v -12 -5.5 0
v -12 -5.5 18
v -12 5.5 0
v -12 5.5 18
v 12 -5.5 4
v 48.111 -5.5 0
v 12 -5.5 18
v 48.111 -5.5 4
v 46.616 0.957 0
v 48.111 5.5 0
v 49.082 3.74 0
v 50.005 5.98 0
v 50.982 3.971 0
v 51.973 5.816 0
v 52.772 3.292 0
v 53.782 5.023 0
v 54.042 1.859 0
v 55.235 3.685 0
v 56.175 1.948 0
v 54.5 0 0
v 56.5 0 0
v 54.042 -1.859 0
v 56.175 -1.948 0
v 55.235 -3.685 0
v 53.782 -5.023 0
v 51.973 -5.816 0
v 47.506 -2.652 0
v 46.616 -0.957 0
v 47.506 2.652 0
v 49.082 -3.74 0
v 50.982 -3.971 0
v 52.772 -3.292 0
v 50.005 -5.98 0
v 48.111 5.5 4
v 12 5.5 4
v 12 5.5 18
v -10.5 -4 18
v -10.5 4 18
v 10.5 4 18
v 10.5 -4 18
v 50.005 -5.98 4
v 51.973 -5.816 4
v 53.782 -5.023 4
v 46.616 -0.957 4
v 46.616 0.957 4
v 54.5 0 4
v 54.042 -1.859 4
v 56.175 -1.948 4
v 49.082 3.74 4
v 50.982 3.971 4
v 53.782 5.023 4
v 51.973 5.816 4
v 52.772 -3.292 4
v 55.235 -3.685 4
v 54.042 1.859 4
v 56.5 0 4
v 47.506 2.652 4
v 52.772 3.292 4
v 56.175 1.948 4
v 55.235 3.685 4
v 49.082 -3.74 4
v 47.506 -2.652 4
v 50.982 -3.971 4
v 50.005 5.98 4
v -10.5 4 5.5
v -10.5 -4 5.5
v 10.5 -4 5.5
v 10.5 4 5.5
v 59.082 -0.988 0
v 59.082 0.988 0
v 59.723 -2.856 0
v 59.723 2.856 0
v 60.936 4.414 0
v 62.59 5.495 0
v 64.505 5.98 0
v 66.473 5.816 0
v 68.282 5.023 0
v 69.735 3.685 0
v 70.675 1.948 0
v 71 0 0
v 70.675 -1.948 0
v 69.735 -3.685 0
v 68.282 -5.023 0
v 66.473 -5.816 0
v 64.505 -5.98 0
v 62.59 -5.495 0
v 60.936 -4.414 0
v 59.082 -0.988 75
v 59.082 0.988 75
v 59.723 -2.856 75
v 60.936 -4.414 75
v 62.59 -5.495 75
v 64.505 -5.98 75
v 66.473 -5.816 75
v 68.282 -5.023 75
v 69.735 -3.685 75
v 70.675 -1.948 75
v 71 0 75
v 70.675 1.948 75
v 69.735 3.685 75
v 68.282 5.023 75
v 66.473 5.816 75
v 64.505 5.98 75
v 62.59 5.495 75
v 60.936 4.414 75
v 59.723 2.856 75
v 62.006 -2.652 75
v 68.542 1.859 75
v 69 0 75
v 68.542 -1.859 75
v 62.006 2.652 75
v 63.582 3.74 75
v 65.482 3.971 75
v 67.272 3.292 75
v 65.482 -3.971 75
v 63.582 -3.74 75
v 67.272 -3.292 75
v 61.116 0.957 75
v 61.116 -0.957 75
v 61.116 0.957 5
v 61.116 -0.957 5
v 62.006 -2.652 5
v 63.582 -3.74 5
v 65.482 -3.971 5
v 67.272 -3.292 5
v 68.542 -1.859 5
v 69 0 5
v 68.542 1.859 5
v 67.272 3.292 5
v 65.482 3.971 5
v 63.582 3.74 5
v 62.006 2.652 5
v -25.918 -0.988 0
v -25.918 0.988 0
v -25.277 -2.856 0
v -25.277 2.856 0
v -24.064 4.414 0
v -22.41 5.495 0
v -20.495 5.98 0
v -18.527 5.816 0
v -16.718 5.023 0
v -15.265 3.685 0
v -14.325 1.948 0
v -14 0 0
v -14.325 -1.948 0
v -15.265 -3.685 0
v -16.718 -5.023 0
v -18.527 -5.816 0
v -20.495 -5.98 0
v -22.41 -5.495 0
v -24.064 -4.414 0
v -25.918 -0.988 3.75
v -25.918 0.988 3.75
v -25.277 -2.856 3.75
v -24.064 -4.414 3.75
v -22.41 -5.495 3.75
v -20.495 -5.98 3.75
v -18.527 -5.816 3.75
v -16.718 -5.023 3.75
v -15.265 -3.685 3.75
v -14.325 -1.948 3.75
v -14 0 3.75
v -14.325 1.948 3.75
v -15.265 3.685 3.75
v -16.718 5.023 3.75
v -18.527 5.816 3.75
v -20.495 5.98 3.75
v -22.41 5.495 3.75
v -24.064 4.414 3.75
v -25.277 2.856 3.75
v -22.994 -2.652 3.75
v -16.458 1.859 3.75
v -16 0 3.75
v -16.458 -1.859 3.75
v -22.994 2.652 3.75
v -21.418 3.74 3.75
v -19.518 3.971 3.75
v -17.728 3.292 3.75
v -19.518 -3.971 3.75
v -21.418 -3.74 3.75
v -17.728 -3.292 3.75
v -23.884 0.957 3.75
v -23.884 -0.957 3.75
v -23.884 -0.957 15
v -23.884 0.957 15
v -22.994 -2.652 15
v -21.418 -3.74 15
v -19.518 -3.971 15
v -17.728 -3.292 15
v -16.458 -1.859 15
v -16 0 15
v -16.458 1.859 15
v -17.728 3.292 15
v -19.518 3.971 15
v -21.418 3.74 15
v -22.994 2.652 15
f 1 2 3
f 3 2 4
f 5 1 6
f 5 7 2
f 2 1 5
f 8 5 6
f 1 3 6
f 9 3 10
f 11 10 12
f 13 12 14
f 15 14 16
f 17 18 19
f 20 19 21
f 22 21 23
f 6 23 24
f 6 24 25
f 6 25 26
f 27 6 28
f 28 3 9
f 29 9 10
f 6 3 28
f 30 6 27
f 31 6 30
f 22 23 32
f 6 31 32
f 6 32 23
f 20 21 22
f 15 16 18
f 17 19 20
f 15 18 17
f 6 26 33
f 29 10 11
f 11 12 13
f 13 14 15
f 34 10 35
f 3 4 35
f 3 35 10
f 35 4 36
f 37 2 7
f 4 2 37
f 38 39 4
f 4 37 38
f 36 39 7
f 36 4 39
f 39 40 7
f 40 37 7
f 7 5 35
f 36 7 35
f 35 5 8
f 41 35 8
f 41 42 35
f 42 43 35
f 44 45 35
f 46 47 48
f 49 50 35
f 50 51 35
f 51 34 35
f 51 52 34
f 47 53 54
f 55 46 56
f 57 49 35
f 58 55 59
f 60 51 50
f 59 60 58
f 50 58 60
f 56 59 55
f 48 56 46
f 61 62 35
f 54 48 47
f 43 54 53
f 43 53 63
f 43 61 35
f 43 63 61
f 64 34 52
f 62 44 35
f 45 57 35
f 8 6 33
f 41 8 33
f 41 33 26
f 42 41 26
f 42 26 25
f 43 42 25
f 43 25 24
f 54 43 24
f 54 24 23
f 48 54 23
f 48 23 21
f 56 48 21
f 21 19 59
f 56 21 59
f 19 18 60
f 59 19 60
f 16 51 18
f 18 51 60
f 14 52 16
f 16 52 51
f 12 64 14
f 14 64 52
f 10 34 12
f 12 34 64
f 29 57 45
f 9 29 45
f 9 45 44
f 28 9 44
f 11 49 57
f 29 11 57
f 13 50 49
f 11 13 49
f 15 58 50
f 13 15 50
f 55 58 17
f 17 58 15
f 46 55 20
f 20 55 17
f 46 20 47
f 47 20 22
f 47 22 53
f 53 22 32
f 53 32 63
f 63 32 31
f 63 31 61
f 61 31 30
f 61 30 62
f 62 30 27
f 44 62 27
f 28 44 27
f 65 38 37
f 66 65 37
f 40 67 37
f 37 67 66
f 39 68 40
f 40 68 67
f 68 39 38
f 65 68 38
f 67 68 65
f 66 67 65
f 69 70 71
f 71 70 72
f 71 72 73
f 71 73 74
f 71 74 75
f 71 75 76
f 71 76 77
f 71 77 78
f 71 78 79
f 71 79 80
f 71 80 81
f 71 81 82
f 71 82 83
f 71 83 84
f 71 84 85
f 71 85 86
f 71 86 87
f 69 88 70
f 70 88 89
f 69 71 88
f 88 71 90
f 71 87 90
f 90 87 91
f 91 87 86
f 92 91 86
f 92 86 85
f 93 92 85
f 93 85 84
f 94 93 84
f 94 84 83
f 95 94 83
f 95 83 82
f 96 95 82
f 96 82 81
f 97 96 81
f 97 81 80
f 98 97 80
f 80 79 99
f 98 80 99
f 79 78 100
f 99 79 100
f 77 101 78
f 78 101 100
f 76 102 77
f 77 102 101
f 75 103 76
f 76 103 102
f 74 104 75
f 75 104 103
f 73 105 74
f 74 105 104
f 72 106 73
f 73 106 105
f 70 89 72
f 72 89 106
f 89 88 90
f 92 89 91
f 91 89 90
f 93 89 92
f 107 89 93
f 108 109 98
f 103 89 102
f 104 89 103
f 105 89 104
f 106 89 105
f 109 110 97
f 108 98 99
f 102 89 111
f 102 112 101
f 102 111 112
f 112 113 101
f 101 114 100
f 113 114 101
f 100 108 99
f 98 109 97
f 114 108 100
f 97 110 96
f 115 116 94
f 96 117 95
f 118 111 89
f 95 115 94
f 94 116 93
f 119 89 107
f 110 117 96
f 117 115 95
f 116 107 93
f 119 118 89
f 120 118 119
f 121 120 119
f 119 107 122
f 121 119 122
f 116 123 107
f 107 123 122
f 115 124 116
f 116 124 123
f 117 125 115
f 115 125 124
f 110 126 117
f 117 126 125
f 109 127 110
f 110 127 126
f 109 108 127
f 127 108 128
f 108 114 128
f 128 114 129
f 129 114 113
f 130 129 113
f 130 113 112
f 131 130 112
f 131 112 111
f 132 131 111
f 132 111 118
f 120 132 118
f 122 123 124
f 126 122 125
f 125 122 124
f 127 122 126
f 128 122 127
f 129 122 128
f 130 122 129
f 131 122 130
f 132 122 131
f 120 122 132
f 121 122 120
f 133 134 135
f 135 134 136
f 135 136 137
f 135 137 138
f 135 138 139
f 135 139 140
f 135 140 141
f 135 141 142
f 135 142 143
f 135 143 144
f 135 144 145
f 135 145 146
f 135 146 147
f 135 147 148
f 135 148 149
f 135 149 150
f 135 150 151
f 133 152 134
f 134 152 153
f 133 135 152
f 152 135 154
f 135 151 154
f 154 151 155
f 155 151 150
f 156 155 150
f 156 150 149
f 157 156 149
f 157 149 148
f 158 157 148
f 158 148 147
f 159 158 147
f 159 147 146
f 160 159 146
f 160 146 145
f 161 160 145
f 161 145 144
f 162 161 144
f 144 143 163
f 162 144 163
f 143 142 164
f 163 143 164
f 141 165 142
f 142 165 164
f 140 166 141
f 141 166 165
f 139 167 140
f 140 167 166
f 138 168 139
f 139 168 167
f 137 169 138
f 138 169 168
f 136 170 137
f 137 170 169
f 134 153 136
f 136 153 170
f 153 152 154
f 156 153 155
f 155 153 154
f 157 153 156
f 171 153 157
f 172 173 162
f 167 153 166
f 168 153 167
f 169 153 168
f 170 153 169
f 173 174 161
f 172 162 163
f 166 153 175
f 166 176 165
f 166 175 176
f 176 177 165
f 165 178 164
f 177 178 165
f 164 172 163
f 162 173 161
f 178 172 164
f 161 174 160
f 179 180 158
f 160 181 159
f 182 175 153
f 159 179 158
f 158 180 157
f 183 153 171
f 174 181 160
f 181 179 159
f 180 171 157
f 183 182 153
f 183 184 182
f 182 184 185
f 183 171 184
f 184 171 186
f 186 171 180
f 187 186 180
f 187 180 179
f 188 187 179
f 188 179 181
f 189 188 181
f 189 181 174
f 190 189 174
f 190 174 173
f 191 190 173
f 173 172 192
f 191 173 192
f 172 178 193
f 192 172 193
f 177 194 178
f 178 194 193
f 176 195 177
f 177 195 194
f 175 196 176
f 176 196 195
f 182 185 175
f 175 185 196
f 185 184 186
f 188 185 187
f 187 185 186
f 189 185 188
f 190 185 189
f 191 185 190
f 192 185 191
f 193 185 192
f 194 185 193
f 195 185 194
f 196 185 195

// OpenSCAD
/* For best printing results, export these to .stl files one at a time. */
print_pin = 1;
print_handle = 1;
print_crank = 1;

winder_width=21;
winder_height=8;
winder_depth=15;

handle_radius=4;
handle_radius2=6;
handle_length=75;
crank_length=(150 / 3);
crank_height=4;
crank_width=(winder_height + 3);

module winder_head()
{
	difference() {
		cube(size = [winder_width + 3, winder_height + 3, 
			winder_depth + 3], center=true);
		translate(v = [0, 0, 4])  {
			cube(size = [winder_width, winder_height, 
				winder_depth], center=true);
		}
	}
}

module winder_crank(x, y, z)
{
	translate(v = [x, y, z]) {
		difference() {
			union() {
				cube(size = [ crank_length,
					crank_width, crank_height ],
					center = true);
				translate(v = [20 + crank_width / 2, 0, -crank_height / 2])
					cylinder(h = crank_height, r1 = handle_radius2,
						r2 = handle_radius2, center = false);
			}
			translate(v = [20 + crank_width / 2, 0, -10])
				cylinder(h = 35, r1 = handle_radius,
					r2 = handle_radius, center = false);
		}
	}
}

module pin(x, y, z)
{
	translate( v = [x, y, z]) {
		union() {
			cylinder(h = handle_length / 5,
				r1 = handle_radius,
				r2 = handle_radius, center = false);
			cylinder(h = handle_length / 20,
				r1 = handle_radius2, 
				r2 = handle_radius2, center = false);
		}
	}
}

module handle(x, y, z)
{
	translate( v = [x, y, z]) {
		difference() {
			cylinder(h = handle_length, r1 = handle_radius2,
				r2 = handle_radius2, center = false);
			translate( v = [ 0, 0, 5 ])
				cylinder(h = handle_length - 5,
					r1 = handle_radius,
					r2 = handle_radius, center = false);
		}
	}
}


module string_winder(x, y, z)
{
	translate( v = [x, y, z]) {
		union() {
			if (print_crank != 0) {
				winder_crank( crank_length / 2, 0, - winder_depth / 2 + 0.5);
				winder_head();
			}
		}
		if (print_handle != 0)
			handle(crank_length + 15, 0, -9);
		if (print_pin != 0)
			pin(-20, 0, -9);
	}
}

string_winder(0, 0, 9);
